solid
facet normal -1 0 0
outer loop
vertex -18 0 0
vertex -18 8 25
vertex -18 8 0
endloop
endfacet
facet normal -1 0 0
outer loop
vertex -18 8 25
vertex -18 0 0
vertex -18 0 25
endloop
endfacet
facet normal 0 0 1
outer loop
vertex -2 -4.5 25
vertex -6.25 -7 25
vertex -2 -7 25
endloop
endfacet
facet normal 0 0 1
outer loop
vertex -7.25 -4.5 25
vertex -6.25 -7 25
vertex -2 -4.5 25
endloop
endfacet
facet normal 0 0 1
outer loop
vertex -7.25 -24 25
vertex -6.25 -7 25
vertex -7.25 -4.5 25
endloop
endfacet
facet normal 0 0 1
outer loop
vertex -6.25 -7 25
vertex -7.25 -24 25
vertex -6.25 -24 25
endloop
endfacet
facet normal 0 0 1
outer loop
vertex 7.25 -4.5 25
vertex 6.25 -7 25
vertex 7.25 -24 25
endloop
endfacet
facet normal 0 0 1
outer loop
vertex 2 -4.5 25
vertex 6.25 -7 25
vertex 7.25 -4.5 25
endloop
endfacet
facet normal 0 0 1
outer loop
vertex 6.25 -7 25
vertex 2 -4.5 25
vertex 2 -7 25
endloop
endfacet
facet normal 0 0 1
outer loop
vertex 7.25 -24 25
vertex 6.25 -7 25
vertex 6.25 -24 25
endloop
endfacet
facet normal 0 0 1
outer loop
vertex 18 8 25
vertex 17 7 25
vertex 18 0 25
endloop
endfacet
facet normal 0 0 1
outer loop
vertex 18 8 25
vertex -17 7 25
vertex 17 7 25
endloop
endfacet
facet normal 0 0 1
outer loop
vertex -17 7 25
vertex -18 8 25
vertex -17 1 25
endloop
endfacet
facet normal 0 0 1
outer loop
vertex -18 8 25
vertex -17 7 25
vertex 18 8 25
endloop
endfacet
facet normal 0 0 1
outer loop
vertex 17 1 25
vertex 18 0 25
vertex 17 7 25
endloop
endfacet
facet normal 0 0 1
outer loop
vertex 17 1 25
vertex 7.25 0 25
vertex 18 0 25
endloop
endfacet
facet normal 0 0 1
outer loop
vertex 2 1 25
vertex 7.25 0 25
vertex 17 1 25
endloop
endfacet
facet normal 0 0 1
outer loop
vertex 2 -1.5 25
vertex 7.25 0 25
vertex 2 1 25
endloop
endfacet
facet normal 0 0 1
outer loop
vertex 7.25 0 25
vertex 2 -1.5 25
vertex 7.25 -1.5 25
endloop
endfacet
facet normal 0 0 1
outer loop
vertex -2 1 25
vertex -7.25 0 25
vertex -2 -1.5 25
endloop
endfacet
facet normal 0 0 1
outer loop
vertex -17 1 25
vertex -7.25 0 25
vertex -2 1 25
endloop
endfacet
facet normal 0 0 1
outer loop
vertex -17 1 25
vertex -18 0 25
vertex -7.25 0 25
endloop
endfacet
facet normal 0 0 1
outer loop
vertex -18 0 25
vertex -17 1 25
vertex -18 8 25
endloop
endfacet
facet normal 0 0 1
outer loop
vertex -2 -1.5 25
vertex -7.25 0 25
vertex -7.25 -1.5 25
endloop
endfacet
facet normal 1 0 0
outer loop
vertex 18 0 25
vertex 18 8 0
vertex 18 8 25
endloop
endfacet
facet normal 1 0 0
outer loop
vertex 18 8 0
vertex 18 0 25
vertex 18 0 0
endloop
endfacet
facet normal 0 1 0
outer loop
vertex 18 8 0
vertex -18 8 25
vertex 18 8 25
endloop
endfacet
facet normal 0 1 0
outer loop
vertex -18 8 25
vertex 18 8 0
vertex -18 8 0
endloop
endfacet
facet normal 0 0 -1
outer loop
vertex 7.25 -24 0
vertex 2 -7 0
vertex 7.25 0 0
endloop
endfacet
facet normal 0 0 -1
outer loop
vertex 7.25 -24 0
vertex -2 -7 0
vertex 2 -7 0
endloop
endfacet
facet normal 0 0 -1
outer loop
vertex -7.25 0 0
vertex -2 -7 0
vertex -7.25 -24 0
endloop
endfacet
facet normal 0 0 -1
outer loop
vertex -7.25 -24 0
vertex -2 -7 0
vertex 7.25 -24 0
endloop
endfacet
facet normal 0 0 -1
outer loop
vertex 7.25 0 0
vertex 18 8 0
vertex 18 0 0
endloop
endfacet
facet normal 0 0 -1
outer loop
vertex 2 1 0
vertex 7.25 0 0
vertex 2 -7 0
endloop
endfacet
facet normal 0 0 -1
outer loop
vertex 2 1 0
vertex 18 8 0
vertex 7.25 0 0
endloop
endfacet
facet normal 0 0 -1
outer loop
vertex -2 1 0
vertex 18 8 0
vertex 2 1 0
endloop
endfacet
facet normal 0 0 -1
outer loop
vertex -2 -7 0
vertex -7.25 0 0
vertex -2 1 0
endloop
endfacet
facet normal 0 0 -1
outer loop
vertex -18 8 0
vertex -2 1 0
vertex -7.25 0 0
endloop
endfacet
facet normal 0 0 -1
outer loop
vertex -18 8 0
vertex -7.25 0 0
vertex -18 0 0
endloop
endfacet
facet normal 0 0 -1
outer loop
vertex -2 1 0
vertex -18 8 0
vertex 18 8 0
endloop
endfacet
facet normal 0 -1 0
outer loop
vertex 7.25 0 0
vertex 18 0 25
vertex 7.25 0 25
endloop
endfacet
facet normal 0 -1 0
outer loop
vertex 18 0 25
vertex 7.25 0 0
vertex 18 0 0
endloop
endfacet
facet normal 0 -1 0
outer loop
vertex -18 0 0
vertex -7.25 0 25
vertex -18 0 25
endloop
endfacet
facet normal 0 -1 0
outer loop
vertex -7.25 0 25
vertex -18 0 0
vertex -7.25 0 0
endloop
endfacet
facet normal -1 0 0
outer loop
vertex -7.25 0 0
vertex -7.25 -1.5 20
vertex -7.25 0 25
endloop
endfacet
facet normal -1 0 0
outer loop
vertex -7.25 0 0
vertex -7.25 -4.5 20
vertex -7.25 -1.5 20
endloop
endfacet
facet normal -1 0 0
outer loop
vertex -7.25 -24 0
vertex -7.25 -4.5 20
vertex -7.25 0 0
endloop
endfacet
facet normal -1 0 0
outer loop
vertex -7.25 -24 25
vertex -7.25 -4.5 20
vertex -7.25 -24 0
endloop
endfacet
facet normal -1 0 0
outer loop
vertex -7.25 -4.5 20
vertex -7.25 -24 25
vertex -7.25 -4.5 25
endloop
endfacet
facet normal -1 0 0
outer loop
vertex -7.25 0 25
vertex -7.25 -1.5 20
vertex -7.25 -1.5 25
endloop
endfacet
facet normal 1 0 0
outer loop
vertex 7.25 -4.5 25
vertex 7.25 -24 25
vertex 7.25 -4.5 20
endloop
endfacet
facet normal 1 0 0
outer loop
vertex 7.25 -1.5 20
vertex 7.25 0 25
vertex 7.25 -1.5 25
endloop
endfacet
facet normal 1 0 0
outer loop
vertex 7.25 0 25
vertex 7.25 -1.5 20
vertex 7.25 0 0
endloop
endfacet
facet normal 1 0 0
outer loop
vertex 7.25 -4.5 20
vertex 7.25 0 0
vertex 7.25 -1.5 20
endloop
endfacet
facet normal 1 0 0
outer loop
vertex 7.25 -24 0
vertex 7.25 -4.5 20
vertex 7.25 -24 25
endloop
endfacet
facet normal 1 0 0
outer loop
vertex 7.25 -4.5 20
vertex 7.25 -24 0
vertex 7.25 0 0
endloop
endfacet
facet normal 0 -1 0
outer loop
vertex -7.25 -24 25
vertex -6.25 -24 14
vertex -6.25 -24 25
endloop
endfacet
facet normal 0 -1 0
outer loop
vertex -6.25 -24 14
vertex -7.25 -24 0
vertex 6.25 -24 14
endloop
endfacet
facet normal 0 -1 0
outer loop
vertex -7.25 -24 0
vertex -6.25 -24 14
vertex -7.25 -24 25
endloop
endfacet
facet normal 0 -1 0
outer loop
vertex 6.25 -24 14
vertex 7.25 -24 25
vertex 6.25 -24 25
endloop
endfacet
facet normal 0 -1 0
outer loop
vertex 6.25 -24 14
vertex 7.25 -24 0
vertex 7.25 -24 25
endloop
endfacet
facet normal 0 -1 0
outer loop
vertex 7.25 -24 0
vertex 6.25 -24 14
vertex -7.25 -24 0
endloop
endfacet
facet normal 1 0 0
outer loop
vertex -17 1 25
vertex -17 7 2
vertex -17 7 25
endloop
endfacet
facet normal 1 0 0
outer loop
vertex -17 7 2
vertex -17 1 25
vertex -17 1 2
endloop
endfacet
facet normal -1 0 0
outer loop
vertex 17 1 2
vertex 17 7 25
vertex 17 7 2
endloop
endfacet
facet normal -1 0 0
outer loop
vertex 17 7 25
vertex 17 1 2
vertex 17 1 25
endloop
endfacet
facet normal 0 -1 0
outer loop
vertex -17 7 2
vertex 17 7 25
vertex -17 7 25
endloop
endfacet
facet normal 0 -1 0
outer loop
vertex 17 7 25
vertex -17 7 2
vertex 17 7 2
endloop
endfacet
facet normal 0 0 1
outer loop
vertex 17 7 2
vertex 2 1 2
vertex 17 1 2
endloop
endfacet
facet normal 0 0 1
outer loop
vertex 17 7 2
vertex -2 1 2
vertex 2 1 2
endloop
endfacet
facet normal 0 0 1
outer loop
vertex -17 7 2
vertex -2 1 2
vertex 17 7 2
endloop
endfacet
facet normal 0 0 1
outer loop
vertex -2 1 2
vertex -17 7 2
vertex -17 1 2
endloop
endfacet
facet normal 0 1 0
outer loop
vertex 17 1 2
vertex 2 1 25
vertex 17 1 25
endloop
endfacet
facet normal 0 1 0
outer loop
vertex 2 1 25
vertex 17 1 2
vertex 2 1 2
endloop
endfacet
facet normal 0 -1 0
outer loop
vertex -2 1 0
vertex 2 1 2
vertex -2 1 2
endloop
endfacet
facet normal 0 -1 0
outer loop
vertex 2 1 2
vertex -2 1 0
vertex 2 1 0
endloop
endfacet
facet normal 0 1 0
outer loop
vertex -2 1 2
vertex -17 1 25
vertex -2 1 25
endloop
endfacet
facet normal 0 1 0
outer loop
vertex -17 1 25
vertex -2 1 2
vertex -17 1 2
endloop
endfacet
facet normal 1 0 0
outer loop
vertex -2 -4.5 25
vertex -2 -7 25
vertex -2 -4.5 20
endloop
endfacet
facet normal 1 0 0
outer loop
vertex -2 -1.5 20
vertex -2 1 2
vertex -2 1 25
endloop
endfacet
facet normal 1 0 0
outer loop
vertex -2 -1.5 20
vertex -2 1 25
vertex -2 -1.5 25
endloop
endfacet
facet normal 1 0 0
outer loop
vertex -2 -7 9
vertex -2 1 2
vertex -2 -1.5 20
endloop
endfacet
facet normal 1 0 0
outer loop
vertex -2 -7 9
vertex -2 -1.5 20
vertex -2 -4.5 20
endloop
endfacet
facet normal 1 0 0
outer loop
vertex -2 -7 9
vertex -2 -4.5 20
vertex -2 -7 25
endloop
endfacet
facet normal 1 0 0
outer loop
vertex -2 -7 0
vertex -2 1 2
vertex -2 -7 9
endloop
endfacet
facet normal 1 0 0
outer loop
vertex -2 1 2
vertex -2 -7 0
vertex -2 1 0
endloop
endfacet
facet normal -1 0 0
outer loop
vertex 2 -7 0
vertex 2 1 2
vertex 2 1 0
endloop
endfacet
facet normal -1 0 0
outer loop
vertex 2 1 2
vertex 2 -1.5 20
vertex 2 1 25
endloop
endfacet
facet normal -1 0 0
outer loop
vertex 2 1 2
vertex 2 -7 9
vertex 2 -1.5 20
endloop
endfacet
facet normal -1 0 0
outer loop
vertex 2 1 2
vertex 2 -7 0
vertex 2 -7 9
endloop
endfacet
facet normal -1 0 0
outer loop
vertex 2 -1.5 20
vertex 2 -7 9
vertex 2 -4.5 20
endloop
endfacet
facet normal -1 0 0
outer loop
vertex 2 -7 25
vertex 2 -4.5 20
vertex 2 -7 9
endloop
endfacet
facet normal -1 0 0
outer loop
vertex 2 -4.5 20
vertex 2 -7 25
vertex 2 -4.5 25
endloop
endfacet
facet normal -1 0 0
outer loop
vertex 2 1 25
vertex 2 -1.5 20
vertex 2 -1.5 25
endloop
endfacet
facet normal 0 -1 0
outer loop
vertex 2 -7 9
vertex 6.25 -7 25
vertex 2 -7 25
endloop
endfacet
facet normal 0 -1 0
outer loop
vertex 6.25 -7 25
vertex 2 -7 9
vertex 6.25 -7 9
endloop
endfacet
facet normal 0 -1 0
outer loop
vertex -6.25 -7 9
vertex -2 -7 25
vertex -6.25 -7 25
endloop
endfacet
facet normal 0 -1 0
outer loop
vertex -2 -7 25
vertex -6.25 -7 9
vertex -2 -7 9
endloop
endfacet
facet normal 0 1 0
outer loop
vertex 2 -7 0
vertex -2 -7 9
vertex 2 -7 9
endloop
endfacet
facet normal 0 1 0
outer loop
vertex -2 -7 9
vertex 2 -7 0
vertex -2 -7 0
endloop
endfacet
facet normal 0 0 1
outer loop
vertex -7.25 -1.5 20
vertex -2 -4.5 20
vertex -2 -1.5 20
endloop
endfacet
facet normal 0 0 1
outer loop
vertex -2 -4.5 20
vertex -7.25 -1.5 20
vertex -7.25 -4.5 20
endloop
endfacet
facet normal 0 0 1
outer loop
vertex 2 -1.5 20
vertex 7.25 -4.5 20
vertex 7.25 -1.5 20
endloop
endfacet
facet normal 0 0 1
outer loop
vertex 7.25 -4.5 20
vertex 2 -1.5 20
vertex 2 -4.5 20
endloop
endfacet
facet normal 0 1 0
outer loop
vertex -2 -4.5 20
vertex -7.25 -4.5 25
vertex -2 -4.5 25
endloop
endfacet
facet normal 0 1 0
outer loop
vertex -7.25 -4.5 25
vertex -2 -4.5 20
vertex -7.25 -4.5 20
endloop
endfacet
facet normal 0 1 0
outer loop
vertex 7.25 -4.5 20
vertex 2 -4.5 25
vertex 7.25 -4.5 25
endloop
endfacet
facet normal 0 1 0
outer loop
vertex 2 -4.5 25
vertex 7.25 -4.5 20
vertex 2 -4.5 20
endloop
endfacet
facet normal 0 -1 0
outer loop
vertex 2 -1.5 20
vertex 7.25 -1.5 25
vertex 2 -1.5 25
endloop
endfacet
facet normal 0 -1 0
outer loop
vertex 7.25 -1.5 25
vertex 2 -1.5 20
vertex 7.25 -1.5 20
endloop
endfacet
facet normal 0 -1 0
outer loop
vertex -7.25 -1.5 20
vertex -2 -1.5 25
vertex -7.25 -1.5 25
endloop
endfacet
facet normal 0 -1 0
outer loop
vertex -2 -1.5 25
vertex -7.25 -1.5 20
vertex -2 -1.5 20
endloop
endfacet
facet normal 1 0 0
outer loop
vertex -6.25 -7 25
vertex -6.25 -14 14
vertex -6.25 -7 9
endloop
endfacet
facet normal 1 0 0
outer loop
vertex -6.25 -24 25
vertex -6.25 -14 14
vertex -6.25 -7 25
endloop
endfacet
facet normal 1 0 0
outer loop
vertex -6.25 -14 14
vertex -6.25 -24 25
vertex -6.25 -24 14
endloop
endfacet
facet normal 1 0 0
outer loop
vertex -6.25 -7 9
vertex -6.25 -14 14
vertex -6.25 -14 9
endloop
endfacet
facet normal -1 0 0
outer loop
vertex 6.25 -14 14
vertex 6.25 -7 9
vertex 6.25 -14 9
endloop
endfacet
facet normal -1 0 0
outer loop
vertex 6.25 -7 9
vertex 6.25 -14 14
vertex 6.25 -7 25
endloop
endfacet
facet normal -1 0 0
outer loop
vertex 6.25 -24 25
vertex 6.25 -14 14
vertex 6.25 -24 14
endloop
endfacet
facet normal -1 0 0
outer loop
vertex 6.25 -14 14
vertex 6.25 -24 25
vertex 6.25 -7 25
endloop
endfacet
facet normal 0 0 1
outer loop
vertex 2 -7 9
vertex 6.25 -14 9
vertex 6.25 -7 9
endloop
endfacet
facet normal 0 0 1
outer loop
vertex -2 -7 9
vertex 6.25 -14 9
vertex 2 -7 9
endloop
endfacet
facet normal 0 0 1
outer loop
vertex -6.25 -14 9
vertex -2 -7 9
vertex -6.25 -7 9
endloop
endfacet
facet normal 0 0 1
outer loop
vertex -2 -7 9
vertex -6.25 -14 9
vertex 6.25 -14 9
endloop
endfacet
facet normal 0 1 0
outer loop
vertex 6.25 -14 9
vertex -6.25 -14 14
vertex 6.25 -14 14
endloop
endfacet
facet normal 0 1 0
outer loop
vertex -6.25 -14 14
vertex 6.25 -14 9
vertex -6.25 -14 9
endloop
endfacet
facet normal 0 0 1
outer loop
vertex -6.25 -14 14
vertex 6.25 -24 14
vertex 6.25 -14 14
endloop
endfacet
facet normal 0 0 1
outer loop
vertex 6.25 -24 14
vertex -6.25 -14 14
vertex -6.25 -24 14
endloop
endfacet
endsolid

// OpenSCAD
$fa=5; $fs=0.1;

difference() {
	union() {
		
		translate([0, 4, 12.5]) cube([36, 8, 25], center=true); //m32u4
		translate([0, -3.5, 12.5]) cube([14.5, 7, 25], center=true); //перемычка
		translate([0, -15.5, 12.5]) cube([14.5, 17, 25], center=true); //usb 		
		
	}//un-solid

	union() {

		translate([0, 4, 13.5]) cube([34, 6, 23], center=true); //m32u4
		translate([0, -3, 12.5]) cube([4, 8, 25], center=true); //перемычка
		translate([0, -3, 22.5]) cube([14.5, 3, 5], center=true); // под провода
		translate([0, -10.5, 17]) cube([12.5, 7, 16], center=true); // usbB pins
		translate([0, -19, 19.5]) cube([12.5, 10, 11], center=true); // usbB

	}//un-hole
}//diff
